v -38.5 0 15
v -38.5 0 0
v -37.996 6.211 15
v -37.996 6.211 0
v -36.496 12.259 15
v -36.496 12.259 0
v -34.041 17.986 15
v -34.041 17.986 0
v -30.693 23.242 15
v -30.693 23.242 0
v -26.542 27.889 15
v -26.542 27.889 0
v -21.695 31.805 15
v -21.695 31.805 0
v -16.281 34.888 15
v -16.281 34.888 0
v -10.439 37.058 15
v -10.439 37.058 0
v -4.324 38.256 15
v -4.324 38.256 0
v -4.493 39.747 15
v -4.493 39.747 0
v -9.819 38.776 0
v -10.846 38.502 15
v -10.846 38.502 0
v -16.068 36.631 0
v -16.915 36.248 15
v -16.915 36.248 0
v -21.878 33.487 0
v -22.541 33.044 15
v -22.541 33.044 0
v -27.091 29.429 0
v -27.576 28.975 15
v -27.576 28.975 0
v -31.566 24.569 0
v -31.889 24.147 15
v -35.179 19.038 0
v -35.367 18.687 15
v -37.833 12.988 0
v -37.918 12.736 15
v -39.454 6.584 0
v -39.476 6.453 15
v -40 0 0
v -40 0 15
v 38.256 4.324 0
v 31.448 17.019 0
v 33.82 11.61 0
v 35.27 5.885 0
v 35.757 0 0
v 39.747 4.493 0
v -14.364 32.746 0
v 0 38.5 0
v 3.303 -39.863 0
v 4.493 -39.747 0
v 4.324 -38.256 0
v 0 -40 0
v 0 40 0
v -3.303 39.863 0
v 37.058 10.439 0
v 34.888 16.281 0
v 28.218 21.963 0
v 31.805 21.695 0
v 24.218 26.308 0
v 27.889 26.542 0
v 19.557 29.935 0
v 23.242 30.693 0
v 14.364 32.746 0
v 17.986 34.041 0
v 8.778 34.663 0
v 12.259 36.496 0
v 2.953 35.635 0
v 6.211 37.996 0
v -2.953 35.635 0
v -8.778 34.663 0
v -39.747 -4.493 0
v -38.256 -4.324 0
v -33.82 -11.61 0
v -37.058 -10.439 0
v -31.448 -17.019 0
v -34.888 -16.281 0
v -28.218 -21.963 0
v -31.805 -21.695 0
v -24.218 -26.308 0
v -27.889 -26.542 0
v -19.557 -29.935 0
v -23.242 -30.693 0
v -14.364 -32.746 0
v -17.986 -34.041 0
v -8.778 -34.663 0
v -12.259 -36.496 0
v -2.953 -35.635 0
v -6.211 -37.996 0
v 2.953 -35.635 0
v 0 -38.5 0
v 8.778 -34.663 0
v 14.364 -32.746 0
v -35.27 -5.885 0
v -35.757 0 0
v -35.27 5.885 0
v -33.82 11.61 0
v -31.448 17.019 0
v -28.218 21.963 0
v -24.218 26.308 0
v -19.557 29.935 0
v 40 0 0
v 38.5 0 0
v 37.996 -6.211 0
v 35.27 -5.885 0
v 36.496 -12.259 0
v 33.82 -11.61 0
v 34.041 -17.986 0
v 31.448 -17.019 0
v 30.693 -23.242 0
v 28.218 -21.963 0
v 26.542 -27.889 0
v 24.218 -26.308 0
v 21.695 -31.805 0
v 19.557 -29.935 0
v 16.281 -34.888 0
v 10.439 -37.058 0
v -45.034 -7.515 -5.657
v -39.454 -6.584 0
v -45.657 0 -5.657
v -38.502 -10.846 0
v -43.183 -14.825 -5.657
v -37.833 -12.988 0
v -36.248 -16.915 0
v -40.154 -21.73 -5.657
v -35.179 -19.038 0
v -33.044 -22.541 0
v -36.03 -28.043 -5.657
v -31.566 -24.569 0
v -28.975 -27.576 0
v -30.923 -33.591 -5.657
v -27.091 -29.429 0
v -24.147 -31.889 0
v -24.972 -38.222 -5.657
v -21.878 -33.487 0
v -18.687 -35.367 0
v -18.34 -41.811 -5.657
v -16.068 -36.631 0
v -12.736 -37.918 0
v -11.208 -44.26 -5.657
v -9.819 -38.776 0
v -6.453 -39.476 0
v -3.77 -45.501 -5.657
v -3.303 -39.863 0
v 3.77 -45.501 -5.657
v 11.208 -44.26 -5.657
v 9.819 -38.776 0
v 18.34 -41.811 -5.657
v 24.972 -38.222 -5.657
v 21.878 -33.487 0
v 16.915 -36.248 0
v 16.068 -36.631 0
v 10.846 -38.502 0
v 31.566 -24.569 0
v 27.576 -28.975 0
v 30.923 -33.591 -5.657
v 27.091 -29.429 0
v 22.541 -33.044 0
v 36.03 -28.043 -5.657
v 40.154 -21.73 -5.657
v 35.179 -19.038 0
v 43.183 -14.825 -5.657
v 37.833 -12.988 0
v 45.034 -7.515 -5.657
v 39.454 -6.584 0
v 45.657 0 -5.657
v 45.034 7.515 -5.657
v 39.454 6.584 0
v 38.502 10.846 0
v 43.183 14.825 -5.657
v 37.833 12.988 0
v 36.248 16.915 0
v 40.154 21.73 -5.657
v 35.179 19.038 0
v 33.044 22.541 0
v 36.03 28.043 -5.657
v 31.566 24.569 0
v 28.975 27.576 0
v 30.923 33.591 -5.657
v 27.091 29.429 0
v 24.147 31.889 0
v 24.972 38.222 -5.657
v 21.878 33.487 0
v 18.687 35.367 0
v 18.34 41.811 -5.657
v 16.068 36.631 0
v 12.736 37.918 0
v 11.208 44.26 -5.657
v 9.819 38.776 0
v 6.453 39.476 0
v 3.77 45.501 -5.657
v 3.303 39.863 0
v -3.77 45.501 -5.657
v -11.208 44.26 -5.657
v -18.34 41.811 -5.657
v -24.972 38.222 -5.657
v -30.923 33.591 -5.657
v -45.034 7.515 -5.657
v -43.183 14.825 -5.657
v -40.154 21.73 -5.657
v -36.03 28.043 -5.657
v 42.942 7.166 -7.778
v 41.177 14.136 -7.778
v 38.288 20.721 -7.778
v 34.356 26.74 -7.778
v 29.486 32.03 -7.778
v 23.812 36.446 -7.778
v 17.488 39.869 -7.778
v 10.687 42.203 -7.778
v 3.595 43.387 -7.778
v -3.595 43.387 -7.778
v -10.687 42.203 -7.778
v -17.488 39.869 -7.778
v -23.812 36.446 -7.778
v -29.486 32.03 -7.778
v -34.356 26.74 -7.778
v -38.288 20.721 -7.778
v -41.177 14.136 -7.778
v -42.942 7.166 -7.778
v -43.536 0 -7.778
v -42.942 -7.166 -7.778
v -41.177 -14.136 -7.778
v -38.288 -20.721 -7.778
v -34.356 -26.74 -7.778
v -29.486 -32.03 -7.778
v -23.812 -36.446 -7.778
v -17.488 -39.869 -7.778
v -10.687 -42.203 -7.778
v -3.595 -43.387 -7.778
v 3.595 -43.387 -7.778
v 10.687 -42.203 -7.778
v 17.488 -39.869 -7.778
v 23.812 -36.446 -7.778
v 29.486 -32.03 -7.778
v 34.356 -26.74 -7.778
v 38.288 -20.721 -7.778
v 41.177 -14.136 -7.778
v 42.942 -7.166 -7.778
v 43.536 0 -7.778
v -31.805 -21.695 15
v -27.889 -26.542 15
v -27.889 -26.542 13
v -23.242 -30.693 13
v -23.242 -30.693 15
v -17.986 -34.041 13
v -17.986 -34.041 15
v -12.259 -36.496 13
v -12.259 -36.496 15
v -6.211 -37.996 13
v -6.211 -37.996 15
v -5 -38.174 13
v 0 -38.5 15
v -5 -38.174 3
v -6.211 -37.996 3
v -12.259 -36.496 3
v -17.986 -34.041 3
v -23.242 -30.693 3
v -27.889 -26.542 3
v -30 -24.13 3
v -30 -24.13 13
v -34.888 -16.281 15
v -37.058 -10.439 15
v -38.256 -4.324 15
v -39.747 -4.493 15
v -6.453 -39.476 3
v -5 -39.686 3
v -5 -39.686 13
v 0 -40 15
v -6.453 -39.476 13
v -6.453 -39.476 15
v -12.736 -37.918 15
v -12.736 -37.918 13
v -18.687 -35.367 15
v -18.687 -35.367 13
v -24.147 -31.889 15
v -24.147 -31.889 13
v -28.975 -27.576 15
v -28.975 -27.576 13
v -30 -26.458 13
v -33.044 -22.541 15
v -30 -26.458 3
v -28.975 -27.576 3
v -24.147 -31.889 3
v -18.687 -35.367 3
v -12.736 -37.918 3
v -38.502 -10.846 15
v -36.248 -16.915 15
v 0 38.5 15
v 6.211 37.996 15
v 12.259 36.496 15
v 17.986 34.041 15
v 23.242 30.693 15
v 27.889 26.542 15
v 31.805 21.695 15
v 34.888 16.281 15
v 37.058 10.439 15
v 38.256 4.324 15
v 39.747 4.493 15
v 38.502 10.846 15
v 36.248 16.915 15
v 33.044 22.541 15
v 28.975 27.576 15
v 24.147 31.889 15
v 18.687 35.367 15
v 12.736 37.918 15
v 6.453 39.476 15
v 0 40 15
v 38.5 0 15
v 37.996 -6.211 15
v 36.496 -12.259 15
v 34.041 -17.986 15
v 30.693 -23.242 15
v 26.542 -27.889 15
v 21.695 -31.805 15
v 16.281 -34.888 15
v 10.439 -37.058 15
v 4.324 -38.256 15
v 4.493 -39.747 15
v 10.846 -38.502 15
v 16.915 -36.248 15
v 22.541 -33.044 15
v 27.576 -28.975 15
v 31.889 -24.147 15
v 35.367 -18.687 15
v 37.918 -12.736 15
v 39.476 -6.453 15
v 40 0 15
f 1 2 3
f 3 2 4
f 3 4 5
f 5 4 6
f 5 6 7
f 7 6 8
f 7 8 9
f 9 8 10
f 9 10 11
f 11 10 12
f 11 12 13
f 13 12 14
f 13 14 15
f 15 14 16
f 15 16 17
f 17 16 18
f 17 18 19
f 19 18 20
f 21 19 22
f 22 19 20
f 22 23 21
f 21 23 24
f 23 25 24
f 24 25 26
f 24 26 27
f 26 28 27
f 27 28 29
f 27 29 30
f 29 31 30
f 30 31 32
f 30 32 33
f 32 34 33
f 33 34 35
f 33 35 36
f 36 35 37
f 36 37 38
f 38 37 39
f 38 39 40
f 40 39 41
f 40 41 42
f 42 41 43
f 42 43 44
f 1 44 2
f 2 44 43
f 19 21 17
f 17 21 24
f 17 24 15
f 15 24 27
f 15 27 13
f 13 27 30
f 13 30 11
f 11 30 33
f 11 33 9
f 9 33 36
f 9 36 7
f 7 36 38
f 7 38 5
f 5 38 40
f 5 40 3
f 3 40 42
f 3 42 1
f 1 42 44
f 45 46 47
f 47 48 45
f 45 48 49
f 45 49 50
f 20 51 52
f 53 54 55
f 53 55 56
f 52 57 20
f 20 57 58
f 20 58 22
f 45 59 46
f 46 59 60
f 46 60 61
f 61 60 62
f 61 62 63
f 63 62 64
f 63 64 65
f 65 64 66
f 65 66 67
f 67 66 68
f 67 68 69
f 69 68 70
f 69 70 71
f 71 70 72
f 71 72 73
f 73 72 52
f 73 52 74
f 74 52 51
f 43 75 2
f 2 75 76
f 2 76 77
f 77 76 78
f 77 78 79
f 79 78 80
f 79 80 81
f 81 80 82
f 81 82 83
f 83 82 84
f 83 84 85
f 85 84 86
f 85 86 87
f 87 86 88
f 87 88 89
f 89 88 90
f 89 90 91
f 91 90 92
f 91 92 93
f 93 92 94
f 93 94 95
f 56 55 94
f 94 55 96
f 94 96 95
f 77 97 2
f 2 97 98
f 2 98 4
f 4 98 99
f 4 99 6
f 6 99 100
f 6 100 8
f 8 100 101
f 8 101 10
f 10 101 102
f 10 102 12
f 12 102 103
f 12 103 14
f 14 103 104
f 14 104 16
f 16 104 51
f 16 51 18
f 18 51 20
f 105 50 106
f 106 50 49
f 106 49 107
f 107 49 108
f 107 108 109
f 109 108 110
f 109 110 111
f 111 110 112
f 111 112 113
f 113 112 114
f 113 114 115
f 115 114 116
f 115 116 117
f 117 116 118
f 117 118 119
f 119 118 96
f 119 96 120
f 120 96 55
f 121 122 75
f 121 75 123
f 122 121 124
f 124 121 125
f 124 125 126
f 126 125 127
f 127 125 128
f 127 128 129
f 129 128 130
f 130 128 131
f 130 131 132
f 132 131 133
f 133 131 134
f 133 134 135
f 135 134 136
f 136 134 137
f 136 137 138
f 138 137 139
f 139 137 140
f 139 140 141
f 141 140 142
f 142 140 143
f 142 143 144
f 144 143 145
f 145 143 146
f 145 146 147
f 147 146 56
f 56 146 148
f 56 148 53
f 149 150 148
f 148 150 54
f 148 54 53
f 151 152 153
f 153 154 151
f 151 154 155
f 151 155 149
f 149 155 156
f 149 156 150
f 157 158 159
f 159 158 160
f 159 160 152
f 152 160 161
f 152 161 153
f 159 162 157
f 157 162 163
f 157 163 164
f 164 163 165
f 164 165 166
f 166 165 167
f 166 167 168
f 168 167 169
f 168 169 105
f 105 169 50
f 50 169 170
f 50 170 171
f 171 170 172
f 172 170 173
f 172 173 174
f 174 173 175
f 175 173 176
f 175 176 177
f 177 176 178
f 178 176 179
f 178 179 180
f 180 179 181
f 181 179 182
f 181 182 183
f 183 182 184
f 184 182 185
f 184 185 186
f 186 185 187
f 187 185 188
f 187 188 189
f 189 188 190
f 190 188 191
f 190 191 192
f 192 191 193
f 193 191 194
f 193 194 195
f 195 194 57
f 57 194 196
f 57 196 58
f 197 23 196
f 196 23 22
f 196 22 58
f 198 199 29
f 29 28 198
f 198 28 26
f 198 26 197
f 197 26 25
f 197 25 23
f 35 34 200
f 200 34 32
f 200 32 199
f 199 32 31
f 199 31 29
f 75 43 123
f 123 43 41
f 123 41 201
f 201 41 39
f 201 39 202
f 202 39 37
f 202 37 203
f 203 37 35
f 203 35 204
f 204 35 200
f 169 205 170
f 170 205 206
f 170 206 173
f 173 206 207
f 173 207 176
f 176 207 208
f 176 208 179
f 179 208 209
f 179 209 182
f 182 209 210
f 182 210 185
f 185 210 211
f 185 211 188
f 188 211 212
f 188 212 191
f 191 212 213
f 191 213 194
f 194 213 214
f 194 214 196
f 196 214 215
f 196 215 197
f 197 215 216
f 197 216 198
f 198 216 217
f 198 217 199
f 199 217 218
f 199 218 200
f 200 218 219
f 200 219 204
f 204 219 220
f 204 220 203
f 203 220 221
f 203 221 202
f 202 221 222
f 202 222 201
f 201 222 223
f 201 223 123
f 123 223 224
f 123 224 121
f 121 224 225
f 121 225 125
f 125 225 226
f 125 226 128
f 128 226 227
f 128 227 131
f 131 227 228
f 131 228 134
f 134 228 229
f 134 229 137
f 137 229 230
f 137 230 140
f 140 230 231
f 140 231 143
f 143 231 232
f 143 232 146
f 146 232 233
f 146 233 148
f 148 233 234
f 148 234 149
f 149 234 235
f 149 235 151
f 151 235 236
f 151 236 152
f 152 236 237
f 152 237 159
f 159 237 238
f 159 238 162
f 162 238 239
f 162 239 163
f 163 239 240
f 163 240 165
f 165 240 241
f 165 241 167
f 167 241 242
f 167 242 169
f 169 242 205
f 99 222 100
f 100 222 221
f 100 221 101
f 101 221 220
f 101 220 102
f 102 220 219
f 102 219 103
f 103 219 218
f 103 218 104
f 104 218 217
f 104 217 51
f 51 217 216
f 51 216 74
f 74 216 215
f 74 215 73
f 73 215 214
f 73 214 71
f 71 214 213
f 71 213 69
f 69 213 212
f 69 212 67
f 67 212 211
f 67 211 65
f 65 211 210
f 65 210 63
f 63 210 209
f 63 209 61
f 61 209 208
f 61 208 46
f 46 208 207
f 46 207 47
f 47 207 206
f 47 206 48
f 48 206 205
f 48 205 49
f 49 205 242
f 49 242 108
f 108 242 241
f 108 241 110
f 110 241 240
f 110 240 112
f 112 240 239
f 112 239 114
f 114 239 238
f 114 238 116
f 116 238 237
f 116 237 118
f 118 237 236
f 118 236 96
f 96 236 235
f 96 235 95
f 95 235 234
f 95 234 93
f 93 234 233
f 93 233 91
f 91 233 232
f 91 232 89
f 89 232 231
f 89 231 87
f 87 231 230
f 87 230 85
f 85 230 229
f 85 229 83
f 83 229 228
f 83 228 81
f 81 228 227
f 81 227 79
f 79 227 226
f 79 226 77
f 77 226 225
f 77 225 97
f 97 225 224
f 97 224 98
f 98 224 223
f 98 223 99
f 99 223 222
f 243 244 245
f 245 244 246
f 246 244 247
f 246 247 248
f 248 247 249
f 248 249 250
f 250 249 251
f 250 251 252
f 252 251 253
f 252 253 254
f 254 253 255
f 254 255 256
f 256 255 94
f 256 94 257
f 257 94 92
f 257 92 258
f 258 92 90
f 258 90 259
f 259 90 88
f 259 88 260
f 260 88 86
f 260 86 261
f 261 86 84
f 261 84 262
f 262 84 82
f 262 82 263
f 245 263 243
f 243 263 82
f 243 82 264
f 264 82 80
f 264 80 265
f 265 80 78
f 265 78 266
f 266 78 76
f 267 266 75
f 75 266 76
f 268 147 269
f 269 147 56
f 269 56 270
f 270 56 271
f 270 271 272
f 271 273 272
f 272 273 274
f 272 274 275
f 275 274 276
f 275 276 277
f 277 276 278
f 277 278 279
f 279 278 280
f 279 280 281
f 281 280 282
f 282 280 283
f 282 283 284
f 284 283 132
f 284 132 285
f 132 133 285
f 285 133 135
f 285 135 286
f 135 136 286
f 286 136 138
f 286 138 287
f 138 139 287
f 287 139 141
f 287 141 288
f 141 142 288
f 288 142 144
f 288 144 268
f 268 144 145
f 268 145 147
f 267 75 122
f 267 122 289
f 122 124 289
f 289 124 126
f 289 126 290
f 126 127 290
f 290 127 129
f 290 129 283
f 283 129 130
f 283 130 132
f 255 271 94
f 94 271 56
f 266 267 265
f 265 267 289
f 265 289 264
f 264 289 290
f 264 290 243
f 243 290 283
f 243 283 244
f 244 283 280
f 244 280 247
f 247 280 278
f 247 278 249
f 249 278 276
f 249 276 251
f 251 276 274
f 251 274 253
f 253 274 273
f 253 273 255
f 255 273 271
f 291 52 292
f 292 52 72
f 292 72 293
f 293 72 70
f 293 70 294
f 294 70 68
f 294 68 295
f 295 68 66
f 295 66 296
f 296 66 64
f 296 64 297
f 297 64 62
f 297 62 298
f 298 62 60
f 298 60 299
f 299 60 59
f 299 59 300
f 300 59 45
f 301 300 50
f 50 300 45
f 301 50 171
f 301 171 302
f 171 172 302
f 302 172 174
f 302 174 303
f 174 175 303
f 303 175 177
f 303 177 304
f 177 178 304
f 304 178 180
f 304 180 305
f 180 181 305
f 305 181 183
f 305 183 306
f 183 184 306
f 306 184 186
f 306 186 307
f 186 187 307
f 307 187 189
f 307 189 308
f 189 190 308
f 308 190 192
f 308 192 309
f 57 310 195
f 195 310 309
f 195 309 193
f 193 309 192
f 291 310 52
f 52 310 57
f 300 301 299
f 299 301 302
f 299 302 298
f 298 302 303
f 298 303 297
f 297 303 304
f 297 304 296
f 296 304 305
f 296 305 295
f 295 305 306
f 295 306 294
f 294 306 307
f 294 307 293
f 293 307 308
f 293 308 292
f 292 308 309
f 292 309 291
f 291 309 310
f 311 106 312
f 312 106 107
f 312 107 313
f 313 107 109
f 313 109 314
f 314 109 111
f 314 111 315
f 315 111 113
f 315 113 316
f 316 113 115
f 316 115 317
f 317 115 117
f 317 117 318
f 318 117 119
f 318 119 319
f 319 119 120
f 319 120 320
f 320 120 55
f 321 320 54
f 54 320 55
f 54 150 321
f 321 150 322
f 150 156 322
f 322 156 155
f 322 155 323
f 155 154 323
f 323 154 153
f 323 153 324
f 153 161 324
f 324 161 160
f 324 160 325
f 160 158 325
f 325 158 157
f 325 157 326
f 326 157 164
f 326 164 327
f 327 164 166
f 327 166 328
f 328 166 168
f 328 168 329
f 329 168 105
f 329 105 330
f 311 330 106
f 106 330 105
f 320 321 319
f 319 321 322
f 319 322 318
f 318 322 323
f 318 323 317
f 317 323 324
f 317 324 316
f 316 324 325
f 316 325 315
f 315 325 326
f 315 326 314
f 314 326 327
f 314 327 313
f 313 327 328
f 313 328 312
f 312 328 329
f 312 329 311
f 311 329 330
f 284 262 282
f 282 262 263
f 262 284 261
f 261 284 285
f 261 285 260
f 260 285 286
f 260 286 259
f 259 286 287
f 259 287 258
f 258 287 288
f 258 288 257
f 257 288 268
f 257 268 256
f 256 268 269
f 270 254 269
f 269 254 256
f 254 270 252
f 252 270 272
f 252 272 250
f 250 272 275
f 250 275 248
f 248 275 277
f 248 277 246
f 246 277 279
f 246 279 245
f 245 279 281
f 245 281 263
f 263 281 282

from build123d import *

# Parameters (mm, degrees)
SALIENTE_EXTRUIR1_DEPTH    = 15
SALIENTE_EXTRUIR1_2_DEPTH  = 15
SALIENTE_EXTRUIR1_3_DEPTH  = 15
SALIENTE_EXTRUIR1_4_DEPTH  = 15
CORTAR_EXTRUIR1_REACH      = 68.288
CORTAR_EXTRUIR1_END_RADIUS = 40
CROQUIS3_W                 = 25
CROQUIS3_H                 = 10


with BuildPart() as part:
    # Croquis1 → Saliente-Extruir1 (new body)
    with BuildSketch(Plane.XY):
        with BuildLine():
            Line((-4.324392398, 38.256367187), (-4.492875219, 39.746875))
            ThreePointArc((-4.492875219, 39.746875), (-29.830479453, 26.648498937), (-40, 0))
            Line((-40, 0), (-38.5, 0))
            ThreePointArc((-38.5, 0), (-28.711836473, 25.649180227), (-4.324392398, 38.256367187))
        make_face()
    extrude(amount=SALIENTE_EXTRUIR1_DEPTH)



with BuildPart() as body_2:
    # Croquis1 → Saliente-Extruir1 2 (new body)
    with BuildSketch(Plane.XY):
        with BuildLine():
            Line((-38.256367187, -4.324392398), (-39.746875, -4.492875219))
            ThreePointArc((-39.746875, -4.492875219), (-26.648498937, -29.830479453), (0, -40))
            Line((0, -40), (0, -38.5))
            ThreePointArc((0, -38.5), (-25.649180227, -28.711836473), (-38.256367187, -4.324392398))
        make_face()
    extrude(amount=SALIENTE_EXTRUIR1_2_DEPTH)


with BuildPart() as body_3:
    # Croquis1 → Saliente-Extruir1 3 (new body)
    with BuildSketch(Plane.XY):
        with BuildLine():
            ThreePointArc((39.746875, 4.492875219), (26.648498937, 29.830479453), (0, 40))
            Line((0, 40), (0, 38.5))
            ThreePointArc((0, 38.5), (25.649180227, 28.711836473), (38.256367187, 4.324392398))
            Line((38.256367188, 4.324392398), (39.746875, 4.492875219))
        make_face()
    extrude(amount=SALIENTE_EXTRUIR1_3_DEPTH)


with BuildPart() as body_4:
    # Croquis1 → Saliente-Extruir1 4 (new body)
    with BuildSketch(Plane.XY):
        with BuildLine():
            ThreePointArc((4.492875219, -39.746875), (29.830479453, -26.648498937), (40, 0))
            Line((40, 0), (38.5, 0))
            ThreePointArc((38.5, 0), (28.711836473, -25.649180227), (4.324392398, -38.256367188))
            Line((4.324392398, -38.256367188), (4.492875219, -39.746875))
        make_face()
    extrude(amount=SALIENTE_EXTRUIR1_4_DEPTH)


with BuildPart() as part_1:
    add(part.part)

    add(body_2.part)  # Revolución1 merges body 2

    add(body_3.part)  # Revolución1 merges body 3

    add(body_4.part)  # Revolución1 merges body 4
    # Croquis2 → Revolución1 (revolve)
    with BuildSketch(Plane(origin=(0, 0, 0), x_dir=(1, 0, 0), z_dir=(0, 1, 0)), mode=Mode.PRIVATE) as revoluci_n1_sk:
        Polygon((-40, 0), (-45.656854249, 5.656854249), (-43.535533906, 7.778174593), (-35.757359313, 0), align=None)
    revolve(revoluci_n1_sk.sketch.rotate(Axis((0, 0, 0), (0, 0, -1)), 180), axis=Axis((0, 0, 0), (0, 0, -1)))

    # Cortar-Extruir1: up to this cylinder (the profile starts inside it)
    cortar_extruir1_end = Plane(origin=(0, 0, 8), z_dir=(0, 0, -1)) * Cylinder(CORTAR_EXTRUIR1_END_RADIUS, 217.576, mode=Mode.PRIVATE)
    # Croquis3 → Cortar-Extruir1 (cut, up to the surface)
    with BuildSketch(Plane(origin=(0, 0, 0), x_dir=(1, 0, 0), z_dir=(0, 1, 0)), mode=Mode.PRIVATE) as cortar_extruir1_sk1:
        with Locations((-17.5, -8)):
            Rectangle(CROQUIS3_W, CROQUIS3_H)
    cortar_extruir1_tool1 = extrude(cortar_extruir1_sk1.sketch, amount=-CORTAR_EXTRUIR1_REACH, mode=Mode.PRIVATE) & cortar_extruir1_end
    add(cortar_extruir1_tool1.solids().sort_by_distance((-17.5, 0, 8))[0], mode=Mode.SUBTRACT)


solid = part_1.part
